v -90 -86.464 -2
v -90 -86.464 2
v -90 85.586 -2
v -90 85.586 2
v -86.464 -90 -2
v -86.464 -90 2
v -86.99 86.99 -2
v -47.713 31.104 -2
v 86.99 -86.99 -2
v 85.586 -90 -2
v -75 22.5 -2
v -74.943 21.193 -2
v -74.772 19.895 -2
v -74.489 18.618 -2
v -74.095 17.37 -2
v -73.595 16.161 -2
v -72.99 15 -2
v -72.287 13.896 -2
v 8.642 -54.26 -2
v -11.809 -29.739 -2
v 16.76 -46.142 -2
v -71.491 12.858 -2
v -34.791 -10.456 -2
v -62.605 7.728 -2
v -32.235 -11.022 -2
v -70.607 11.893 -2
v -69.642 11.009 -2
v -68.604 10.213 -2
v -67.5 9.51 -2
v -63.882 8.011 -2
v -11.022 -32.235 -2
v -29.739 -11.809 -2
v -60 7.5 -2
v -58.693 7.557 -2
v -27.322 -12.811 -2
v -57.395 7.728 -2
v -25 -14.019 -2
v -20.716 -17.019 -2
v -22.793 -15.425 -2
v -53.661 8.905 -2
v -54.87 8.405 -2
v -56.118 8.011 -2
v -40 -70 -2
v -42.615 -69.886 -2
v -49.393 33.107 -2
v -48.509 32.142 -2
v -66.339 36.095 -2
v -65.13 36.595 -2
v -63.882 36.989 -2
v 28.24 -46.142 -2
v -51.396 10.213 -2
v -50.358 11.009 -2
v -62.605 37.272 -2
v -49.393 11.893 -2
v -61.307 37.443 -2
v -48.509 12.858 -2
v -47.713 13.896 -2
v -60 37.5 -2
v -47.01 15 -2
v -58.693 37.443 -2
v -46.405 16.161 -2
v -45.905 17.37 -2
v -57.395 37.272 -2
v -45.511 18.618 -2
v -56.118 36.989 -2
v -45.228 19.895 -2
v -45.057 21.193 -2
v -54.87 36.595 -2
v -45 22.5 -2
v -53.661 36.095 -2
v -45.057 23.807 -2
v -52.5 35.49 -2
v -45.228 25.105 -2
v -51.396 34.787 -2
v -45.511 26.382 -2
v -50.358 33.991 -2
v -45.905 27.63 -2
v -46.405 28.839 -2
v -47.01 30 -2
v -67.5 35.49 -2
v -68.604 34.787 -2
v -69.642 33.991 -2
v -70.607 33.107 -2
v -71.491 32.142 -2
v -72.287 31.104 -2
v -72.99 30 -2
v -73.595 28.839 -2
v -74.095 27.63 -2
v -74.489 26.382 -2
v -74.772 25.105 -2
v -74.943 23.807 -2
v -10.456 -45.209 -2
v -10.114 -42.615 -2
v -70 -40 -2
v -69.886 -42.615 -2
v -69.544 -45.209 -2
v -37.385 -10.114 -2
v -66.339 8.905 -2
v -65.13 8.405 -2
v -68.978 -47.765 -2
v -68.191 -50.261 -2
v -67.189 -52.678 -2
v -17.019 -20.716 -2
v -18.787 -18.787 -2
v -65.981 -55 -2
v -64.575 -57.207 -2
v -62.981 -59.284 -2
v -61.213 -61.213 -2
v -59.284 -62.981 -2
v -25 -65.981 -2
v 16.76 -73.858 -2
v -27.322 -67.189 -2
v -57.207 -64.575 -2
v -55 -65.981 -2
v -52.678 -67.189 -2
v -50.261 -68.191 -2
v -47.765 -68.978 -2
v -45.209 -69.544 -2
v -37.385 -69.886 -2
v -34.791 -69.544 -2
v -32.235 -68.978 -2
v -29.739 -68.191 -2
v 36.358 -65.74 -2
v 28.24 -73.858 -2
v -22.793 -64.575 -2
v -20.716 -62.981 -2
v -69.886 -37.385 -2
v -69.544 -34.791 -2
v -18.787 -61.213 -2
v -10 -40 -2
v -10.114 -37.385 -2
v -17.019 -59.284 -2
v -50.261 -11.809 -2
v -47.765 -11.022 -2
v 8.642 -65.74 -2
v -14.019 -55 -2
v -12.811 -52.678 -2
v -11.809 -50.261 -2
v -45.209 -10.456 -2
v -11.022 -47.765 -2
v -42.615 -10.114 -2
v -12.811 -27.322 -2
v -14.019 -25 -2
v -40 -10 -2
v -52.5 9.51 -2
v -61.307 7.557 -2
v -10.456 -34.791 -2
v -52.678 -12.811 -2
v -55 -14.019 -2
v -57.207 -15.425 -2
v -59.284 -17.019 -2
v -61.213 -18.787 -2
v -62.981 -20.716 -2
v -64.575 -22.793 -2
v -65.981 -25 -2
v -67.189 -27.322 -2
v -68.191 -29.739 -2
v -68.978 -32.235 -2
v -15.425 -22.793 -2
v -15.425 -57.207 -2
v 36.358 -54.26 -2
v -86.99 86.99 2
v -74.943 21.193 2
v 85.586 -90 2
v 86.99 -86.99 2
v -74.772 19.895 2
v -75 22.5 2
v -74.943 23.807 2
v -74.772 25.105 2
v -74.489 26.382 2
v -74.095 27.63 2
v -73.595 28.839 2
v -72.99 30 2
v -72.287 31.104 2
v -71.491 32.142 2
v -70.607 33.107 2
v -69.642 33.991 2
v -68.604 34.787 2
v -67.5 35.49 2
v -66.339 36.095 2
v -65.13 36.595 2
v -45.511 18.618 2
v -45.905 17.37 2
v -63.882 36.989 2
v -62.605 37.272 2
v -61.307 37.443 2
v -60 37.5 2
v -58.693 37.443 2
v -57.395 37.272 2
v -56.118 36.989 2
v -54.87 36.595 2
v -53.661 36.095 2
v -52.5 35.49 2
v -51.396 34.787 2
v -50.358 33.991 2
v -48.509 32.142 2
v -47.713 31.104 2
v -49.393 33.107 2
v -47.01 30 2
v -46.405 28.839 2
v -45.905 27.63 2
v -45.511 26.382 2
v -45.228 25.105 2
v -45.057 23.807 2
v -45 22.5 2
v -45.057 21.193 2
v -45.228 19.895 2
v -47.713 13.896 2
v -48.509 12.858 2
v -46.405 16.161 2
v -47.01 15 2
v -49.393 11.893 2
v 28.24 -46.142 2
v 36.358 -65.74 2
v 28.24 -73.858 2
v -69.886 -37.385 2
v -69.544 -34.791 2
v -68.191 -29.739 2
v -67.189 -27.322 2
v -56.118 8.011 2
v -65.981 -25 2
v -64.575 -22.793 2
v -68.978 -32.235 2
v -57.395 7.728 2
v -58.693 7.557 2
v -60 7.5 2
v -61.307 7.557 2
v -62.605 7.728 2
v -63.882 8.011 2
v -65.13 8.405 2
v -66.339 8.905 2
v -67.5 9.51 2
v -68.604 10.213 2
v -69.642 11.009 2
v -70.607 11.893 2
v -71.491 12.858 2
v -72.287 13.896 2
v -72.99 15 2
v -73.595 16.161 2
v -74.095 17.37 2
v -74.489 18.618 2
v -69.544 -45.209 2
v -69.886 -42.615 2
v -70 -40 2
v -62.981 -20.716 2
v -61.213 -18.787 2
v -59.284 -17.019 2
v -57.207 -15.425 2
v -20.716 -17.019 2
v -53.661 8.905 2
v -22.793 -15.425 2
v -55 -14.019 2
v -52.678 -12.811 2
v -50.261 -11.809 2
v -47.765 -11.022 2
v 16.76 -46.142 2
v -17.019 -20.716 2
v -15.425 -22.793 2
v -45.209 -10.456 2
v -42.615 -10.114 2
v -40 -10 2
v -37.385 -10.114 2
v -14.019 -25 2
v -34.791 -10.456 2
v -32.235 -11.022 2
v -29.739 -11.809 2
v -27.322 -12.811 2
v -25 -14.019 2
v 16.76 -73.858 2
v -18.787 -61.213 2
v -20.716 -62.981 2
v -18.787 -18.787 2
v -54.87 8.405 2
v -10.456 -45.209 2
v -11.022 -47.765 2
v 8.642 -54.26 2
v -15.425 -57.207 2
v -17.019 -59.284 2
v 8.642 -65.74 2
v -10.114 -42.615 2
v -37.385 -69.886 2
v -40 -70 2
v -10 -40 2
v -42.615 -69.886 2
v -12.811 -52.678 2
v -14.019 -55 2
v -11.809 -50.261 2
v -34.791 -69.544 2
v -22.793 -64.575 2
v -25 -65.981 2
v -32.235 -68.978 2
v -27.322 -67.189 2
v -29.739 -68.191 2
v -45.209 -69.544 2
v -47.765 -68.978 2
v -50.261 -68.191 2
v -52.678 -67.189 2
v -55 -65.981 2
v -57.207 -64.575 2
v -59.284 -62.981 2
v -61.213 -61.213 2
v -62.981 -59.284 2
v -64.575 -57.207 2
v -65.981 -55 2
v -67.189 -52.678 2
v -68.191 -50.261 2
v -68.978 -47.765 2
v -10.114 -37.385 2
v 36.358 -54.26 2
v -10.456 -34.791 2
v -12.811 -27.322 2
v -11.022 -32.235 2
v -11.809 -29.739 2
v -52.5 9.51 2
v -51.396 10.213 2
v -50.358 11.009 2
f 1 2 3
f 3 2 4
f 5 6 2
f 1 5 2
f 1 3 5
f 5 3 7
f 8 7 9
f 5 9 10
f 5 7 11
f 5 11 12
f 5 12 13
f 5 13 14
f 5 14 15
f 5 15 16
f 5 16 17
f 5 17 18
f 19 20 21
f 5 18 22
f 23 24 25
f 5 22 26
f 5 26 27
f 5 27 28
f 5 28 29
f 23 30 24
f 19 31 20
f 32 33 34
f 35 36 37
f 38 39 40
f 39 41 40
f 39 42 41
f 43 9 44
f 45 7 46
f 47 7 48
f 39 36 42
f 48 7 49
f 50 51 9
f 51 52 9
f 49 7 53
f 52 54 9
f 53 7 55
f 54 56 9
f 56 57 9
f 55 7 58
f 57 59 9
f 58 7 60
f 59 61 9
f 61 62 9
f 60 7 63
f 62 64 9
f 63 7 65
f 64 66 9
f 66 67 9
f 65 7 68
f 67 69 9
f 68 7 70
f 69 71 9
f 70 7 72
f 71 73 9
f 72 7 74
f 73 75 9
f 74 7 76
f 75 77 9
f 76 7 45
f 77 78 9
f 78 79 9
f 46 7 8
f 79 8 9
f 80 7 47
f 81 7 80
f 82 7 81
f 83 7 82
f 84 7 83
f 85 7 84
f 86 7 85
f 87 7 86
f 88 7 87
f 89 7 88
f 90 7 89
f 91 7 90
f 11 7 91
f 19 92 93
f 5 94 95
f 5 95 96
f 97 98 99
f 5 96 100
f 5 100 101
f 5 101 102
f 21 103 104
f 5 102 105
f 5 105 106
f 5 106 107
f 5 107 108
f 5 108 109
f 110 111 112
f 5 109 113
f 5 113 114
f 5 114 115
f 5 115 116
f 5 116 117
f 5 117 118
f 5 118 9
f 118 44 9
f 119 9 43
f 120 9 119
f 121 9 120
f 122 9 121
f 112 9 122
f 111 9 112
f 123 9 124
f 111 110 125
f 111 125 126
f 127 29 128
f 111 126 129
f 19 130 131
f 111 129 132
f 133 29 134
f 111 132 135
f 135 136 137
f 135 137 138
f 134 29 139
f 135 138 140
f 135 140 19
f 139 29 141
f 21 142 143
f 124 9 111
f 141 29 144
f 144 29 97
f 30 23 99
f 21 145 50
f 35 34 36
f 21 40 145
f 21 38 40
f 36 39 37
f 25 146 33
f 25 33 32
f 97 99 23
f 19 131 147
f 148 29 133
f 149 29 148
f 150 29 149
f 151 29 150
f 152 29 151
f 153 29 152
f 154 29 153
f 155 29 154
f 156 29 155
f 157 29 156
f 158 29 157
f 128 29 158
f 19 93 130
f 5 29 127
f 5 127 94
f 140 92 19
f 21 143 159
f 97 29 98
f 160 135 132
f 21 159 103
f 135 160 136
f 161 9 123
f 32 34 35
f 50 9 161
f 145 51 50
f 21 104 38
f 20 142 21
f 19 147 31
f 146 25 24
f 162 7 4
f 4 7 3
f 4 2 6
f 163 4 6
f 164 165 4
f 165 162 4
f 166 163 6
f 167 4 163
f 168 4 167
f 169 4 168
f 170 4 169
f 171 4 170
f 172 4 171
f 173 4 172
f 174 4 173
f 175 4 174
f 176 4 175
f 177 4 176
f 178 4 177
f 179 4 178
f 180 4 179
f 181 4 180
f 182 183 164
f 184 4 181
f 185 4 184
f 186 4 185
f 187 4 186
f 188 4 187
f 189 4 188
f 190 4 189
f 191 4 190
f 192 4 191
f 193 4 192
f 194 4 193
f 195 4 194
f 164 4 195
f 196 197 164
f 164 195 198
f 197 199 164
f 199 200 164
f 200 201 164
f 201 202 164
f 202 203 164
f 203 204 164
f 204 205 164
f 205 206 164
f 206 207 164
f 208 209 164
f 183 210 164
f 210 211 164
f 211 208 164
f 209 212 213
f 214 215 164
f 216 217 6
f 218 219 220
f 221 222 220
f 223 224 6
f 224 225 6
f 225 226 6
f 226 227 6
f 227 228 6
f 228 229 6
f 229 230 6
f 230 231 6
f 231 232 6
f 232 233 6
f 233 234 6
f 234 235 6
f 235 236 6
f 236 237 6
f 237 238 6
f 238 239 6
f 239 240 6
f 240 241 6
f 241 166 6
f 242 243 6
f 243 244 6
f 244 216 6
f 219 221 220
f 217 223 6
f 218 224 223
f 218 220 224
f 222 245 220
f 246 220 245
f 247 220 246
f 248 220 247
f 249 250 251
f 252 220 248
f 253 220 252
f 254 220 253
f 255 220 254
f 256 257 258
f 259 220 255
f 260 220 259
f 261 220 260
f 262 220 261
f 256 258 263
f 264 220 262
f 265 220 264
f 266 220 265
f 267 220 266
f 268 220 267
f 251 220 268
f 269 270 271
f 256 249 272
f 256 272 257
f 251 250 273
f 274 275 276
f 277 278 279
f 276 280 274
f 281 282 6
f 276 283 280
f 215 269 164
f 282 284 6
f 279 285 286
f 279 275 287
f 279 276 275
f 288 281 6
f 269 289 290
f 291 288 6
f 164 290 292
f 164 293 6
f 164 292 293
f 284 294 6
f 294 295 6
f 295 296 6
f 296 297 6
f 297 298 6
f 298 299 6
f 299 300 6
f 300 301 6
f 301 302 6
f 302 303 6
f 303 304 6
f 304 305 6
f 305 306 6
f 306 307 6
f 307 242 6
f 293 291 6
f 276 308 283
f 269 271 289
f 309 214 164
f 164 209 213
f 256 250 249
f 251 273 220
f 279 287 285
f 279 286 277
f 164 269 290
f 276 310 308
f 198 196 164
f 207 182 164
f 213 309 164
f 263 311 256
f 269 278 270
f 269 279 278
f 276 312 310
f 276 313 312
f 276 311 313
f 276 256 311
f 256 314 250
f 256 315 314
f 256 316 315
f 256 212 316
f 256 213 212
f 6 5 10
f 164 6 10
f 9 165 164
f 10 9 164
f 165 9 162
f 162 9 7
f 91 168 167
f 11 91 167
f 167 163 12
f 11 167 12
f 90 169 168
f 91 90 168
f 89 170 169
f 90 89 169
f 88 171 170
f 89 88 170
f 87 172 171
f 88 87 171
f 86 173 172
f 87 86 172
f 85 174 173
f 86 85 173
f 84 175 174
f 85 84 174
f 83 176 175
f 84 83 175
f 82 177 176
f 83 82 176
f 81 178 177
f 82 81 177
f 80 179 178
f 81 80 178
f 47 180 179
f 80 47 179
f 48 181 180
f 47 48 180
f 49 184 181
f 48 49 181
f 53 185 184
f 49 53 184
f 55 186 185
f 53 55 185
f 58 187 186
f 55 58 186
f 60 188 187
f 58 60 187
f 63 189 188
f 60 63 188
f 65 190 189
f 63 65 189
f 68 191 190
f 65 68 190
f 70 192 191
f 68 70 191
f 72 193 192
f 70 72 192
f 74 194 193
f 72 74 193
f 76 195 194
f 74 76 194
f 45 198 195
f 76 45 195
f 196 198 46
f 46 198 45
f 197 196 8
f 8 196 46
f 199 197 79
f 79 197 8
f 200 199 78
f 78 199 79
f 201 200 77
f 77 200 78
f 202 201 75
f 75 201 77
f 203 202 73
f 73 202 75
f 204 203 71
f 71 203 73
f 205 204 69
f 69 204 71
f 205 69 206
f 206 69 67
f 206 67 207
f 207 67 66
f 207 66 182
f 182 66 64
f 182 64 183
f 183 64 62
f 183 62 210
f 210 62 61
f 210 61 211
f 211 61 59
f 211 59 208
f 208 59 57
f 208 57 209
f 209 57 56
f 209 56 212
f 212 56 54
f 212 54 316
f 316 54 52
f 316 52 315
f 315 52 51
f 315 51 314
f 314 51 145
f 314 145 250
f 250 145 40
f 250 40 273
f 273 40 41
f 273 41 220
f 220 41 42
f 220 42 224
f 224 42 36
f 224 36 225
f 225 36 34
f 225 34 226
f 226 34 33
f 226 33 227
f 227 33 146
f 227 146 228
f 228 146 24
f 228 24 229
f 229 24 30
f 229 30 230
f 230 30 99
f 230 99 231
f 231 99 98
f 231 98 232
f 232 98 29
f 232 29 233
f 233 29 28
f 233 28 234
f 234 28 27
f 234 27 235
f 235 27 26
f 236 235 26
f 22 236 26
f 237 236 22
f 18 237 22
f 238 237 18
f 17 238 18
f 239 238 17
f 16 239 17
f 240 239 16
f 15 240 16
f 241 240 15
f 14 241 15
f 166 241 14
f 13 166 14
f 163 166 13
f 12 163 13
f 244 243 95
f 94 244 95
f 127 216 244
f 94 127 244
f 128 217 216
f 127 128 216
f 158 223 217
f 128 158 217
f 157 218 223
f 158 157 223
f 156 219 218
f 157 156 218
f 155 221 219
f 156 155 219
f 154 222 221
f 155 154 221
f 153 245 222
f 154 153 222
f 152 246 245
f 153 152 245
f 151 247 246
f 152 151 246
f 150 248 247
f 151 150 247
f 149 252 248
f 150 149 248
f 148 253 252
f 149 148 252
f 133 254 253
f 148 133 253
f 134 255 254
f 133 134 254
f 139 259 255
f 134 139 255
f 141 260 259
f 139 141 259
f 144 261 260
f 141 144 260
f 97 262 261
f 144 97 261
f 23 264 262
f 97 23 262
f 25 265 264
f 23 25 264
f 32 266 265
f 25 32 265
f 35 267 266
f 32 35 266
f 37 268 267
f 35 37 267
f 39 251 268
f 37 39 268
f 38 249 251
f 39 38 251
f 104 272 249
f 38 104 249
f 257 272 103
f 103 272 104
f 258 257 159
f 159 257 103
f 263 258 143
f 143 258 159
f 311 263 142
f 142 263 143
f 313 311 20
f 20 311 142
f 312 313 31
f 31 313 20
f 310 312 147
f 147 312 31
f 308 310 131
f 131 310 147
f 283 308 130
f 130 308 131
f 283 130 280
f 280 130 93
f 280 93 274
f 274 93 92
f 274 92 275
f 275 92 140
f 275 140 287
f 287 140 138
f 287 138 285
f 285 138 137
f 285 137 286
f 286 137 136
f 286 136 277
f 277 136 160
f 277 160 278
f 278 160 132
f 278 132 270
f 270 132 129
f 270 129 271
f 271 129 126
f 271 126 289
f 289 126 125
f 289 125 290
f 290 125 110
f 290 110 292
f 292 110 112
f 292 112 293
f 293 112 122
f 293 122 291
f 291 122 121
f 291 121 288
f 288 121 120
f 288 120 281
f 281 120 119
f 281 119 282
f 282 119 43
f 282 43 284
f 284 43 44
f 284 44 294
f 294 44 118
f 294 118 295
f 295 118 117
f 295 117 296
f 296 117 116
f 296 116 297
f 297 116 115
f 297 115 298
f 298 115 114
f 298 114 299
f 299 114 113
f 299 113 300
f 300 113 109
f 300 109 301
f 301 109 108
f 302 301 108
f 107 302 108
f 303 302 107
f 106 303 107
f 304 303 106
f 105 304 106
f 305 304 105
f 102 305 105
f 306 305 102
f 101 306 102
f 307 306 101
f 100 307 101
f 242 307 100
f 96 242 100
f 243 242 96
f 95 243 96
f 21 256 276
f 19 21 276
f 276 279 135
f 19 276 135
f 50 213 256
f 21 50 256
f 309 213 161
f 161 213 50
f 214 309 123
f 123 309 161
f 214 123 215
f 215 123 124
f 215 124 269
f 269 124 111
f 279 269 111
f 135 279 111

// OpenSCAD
side_length=180;
thickness = 4;
diagonal_length = sqrt(2*pow(side_length, 2));

echo("DIAGONAL LENGTH: ", diagonal_length);

x=0;
y=1;
z=2;

module straight_edge() {
  module body() {
    cube([side_length,side_length,thickness],center=true);
  }

  module holes() {
    // diagonal
    translate([side_length/2,side_length/2,0])
      rotate([0,0,45])
        cube([diagonal_length,diagonal_length+10,thickness+1],center=true);

    // large hole
    translate([-side_length/4.5,-side_length/4.5,0])
      cylinder(r=side_length/6,h=thickness+1,center=true,$fn=72);

    // medium hole
    med_hole=[side_length/3,side_length/8,0];
    translate([-med_hole[x],med_hole[y],0])
      cylinder(r=side_length/12,h=thickness+1,center=true,$fn=72);
    translate([med_hole[y],-med_hole[x],0]) rotate([0,0,22.5])
      cylinder(r=side_length/12,h=thickness+1,center=true,$fn=8);

    // less pointy corners
    for (side=[1,-1]) {
      translate([-side_length/2*side,side_length/2*side,0])
        rotate([0,0,25*side])
          cube([8,8,thickness+1],center=true);
    }

    translate([-side_length/2,-side_length/2,0])
      rotate([0,0,45])
        cube([5,5,thickness+1],center=true);
  }

  difference() {
    body();
    holes();
  }
}

straight_edge();
